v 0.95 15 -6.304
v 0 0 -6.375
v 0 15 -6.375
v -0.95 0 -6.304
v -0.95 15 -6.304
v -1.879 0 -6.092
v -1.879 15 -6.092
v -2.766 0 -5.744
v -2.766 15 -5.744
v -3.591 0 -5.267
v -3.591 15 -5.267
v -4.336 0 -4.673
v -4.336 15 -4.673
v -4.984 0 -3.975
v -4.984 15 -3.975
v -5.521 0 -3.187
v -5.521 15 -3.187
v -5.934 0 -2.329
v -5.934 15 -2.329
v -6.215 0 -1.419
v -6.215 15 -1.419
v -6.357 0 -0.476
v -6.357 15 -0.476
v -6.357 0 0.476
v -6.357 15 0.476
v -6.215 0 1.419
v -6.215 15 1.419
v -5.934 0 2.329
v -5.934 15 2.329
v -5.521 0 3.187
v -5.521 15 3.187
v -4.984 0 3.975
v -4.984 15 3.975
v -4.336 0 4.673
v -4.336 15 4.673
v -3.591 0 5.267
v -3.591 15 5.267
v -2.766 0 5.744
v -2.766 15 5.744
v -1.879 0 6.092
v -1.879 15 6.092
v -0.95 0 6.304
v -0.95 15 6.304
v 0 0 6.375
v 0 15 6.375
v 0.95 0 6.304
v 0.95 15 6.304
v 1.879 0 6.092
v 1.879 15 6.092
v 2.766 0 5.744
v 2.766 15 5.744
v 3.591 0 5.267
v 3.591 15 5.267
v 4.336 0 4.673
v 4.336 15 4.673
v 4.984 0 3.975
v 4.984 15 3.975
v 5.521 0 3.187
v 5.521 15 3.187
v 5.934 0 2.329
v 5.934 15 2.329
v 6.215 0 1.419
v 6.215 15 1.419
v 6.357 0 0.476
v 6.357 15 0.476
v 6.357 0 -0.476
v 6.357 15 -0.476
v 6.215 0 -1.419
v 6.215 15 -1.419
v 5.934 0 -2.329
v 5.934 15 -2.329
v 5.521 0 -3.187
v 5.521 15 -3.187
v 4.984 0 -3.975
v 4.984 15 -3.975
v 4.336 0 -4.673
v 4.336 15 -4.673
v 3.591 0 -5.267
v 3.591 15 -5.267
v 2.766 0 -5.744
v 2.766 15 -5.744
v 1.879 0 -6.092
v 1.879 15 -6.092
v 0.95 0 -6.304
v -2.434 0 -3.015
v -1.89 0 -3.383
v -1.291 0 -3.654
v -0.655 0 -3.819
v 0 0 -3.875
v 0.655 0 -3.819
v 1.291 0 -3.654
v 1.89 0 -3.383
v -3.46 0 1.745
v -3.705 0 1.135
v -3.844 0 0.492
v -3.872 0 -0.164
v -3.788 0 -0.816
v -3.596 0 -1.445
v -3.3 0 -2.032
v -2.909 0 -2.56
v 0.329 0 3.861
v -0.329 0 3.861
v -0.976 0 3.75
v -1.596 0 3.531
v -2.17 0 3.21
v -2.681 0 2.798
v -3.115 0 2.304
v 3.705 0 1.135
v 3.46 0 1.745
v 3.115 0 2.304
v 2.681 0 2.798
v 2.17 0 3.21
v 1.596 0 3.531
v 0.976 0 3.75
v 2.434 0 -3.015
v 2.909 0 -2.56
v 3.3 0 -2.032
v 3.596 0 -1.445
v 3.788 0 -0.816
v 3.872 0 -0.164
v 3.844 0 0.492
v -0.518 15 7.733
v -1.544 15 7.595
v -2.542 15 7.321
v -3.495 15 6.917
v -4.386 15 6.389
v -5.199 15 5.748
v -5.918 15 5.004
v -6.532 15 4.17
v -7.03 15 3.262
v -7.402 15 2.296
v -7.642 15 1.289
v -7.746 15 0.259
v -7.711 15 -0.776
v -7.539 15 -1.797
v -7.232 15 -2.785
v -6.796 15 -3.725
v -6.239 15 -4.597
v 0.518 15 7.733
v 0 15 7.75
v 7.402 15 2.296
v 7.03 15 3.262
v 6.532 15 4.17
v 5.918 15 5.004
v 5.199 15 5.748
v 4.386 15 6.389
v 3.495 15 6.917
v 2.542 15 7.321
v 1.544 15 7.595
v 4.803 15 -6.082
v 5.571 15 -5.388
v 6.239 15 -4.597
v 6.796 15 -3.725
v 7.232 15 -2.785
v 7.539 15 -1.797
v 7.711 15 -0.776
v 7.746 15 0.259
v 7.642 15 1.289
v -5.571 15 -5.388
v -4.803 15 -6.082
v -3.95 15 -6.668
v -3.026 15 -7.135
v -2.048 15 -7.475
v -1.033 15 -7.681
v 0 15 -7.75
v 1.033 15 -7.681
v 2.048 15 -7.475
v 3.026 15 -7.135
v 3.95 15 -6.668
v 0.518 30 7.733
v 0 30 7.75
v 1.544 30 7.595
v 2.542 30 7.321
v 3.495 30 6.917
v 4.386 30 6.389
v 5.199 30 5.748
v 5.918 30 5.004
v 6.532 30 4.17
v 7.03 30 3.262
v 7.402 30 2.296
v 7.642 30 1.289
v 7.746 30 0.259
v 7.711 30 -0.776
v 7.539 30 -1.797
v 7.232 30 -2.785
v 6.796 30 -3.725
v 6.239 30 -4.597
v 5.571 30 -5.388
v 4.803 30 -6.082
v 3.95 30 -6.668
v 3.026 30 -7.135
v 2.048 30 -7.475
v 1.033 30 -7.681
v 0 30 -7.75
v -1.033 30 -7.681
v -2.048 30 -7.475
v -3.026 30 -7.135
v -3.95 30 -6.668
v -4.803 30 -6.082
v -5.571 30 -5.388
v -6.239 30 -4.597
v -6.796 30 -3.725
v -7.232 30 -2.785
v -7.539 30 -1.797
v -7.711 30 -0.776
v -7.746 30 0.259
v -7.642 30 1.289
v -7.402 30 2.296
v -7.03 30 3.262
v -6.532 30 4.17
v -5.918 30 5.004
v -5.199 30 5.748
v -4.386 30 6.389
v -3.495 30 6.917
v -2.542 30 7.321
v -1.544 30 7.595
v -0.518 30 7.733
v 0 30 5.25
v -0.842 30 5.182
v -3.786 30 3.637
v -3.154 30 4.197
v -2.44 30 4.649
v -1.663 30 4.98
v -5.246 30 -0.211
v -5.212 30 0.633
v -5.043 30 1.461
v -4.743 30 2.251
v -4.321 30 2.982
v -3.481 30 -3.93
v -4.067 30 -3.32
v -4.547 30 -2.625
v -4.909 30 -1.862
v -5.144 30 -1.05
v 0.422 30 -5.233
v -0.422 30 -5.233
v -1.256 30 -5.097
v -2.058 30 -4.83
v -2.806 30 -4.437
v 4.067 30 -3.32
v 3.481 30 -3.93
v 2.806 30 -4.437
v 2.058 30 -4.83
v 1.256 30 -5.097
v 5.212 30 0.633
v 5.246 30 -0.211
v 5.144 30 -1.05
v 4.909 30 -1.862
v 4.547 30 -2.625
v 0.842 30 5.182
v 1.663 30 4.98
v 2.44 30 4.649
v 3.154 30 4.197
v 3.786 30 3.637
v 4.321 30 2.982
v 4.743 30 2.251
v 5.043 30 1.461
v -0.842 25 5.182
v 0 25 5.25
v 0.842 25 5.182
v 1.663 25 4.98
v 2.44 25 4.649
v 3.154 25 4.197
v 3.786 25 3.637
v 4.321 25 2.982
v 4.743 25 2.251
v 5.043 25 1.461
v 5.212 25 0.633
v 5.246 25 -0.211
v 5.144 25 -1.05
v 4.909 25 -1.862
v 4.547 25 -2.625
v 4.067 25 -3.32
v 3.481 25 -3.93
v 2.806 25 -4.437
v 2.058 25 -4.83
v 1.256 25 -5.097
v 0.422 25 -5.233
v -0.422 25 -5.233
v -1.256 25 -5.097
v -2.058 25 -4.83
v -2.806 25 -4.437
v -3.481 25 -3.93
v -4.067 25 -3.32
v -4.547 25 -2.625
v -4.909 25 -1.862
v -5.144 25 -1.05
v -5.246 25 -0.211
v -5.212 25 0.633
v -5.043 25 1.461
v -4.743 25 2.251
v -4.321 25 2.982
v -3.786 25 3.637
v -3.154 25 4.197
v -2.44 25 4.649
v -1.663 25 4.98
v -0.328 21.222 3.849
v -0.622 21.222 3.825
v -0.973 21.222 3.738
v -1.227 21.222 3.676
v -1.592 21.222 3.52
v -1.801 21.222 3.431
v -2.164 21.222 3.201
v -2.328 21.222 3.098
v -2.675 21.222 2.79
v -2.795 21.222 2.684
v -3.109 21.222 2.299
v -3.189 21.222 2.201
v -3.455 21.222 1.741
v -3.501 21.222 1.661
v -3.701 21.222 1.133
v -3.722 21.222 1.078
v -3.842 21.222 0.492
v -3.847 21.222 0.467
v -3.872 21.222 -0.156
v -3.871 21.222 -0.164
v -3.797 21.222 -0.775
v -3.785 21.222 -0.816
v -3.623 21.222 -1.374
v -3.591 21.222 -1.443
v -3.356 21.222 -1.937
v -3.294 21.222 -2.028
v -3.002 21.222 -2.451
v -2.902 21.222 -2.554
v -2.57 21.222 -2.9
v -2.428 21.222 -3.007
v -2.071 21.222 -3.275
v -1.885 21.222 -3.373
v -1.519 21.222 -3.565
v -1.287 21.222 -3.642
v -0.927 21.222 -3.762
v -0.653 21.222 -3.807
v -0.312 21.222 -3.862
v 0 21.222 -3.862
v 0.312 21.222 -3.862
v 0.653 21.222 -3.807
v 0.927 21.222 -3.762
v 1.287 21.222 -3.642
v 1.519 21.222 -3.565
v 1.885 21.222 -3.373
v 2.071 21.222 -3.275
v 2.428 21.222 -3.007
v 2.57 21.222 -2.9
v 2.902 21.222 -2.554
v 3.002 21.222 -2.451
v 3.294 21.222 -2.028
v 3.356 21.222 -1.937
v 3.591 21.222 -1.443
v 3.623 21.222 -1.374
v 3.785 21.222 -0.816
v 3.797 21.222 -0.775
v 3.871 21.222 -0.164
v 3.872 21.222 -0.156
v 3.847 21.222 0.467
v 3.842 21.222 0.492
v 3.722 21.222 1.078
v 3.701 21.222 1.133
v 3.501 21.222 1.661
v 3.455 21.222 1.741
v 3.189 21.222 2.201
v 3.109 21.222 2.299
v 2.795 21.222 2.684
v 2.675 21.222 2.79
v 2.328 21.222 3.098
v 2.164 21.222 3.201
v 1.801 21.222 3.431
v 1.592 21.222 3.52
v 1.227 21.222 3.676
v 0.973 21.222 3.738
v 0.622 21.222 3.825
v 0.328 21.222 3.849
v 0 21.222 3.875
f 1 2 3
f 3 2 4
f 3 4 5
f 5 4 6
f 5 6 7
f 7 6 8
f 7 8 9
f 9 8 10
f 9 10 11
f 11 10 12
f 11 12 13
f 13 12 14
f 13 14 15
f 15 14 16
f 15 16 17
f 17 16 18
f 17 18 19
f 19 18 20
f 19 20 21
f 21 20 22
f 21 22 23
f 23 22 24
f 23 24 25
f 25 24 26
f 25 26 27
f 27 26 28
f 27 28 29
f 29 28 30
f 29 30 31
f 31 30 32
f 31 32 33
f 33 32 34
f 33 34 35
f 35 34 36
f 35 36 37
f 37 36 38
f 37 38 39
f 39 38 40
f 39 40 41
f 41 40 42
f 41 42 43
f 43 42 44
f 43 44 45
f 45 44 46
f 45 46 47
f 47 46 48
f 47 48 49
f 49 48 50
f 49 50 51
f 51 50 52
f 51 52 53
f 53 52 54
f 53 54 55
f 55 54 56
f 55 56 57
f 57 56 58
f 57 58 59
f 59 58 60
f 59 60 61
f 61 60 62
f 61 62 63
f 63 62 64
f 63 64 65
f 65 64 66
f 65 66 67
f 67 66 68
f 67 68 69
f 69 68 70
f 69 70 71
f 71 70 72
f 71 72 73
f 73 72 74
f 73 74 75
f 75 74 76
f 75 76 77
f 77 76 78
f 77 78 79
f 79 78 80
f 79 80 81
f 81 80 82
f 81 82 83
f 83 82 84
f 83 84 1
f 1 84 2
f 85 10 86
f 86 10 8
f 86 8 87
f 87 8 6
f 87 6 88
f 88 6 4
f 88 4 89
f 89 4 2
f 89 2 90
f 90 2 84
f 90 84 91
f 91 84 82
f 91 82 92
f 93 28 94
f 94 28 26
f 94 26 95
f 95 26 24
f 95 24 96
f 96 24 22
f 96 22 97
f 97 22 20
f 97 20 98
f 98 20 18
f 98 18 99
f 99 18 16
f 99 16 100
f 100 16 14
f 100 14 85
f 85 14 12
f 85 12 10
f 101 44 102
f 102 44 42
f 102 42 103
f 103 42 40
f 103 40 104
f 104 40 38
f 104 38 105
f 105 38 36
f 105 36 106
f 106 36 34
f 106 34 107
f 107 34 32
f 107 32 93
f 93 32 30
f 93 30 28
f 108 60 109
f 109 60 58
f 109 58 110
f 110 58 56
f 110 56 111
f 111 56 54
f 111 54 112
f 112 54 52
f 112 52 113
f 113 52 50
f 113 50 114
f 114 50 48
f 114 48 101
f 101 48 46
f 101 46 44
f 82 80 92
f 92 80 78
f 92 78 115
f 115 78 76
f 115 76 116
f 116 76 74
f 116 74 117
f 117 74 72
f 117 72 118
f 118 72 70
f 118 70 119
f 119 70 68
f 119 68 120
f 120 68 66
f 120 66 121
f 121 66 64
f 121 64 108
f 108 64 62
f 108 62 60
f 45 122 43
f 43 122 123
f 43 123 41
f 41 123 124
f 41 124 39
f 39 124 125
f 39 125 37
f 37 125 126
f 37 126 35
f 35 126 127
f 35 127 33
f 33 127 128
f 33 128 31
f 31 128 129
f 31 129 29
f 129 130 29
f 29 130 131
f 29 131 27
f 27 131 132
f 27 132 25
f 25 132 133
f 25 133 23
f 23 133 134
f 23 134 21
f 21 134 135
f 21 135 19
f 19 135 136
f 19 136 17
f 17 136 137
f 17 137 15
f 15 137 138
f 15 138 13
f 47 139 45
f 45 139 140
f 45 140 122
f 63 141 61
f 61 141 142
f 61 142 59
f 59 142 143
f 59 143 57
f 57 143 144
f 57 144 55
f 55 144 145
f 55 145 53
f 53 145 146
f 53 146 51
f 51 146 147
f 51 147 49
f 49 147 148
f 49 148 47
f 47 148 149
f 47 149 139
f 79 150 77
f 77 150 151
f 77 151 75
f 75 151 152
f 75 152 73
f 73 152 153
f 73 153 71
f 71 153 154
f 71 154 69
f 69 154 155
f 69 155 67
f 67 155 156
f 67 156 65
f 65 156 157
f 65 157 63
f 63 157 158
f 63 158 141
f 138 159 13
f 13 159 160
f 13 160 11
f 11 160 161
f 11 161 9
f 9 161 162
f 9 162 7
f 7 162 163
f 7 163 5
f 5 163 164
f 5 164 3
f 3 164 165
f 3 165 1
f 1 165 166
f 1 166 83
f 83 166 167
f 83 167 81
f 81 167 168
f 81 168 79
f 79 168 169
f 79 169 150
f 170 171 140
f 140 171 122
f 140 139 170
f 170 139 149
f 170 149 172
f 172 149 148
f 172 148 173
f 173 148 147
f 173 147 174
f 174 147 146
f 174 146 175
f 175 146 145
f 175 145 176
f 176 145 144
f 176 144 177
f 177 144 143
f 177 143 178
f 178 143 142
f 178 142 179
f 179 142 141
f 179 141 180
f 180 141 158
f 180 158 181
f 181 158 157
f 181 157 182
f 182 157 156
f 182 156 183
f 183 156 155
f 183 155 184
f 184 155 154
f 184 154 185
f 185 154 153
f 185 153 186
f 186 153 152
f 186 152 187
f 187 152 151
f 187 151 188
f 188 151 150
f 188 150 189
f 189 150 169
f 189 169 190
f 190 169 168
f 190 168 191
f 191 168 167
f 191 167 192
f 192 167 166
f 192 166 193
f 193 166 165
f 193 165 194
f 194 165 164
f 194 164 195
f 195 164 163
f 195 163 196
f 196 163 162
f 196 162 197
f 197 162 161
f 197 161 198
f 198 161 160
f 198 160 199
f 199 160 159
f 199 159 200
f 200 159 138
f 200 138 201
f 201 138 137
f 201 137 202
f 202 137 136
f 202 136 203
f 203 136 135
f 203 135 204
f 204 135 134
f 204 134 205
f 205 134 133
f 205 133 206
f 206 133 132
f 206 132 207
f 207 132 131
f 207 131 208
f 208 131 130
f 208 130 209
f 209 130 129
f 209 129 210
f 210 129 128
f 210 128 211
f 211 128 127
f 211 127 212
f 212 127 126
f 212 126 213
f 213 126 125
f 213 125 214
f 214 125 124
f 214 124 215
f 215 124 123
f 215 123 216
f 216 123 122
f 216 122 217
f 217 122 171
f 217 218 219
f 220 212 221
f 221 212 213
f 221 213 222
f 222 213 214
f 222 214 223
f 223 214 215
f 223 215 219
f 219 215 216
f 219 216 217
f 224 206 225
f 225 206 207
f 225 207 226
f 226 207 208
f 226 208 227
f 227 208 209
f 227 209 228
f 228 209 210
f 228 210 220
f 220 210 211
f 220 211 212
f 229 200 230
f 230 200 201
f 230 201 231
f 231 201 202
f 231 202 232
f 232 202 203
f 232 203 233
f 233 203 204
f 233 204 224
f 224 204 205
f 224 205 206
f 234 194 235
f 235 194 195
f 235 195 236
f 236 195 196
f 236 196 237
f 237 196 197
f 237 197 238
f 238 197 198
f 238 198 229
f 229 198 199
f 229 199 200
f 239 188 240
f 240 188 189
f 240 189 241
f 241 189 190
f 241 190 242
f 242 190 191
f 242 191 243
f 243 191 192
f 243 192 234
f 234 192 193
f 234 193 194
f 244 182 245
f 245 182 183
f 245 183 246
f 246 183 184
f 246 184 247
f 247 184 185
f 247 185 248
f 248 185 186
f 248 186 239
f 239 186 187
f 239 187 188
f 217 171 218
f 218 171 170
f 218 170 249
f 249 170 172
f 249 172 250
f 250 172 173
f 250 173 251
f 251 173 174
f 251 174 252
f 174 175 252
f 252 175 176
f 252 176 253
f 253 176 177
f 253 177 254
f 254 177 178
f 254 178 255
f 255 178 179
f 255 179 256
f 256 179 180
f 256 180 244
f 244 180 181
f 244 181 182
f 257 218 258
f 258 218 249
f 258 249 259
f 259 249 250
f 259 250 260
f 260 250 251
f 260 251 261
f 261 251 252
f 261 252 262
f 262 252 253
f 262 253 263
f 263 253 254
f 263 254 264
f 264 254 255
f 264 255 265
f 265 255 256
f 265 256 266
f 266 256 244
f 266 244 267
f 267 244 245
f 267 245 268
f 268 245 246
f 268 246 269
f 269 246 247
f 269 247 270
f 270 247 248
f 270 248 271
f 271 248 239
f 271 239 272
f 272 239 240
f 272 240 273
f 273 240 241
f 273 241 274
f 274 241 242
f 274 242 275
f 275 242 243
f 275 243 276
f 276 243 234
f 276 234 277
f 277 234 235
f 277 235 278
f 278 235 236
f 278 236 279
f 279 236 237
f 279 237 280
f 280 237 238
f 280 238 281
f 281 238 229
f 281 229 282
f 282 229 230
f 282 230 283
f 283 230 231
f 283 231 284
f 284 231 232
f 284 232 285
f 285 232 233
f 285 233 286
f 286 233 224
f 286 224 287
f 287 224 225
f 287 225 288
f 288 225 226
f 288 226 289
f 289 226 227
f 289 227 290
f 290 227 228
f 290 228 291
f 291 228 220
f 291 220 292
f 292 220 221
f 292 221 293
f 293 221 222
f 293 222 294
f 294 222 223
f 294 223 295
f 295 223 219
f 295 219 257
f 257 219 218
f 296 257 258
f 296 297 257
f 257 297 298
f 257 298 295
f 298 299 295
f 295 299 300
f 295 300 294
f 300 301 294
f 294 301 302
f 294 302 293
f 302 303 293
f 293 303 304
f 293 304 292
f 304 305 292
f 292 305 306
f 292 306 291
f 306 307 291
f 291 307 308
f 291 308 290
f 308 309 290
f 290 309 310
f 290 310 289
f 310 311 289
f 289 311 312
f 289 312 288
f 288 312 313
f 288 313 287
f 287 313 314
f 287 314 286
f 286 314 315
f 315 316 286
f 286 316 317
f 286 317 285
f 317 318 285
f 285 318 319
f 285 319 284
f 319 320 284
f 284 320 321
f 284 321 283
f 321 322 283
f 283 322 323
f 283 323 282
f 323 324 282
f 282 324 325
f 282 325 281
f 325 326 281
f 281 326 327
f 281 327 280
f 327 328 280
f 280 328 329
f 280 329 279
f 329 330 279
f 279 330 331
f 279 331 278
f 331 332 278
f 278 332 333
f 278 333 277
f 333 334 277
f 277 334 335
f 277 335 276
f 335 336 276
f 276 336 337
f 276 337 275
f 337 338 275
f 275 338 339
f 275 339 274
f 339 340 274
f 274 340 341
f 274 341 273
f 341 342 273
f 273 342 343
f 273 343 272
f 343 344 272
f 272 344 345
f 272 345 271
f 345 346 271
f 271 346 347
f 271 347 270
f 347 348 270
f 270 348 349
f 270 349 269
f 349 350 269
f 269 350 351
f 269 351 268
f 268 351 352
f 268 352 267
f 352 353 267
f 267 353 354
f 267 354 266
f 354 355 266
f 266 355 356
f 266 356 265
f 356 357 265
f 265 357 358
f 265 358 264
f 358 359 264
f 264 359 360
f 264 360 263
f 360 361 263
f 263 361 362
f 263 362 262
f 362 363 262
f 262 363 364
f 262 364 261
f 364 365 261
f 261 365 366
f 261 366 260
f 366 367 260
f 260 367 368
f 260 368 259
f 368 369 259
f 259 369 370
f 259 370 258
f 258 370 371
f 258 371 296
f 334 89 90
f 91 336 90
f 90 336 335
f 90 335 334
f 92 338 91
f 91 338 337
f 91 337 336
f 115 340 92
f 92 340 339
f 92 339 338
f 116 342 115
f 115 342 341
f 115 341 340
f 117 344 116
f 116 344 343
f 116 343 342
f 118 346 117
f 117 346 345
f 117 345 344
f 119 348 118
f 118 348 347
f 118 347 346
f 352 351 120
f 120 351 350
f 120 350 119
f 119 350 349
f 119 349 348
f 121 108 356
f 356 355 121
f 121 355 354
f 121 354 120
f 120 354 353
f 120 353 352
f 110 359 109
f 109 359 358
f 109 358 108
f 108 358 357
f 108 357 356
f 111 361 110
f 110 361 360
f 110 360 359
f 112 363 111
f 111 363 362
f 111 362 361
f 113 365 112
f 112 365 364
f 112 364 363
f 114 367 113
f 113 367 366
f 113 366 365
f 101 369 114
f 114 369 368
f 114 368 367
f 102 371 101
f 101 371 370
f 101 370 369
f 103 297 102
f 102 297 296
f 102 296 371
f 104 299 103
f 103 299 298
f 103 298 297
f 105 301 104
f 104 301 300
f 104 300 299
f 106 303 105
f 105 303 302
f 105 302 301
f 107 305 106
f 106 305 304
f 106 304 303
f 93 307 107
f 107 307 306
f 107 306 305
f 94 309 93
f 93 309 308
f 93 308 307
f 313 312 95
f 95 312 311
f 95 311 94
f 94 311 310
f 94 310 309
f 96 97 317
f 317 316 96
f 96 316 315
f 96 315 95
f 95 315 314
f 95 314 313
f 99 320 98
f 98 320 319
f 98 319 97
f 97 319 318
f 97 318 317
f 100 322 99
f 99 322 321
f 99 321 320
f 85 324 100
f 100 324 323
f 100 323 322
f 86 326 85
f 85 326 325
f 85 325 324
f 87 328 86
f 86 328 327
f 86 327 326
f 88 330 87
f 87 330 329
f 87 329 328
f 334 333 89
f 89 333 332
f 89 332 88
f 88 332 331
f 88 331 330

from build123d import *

# Parameters (mm, degrees)
SKETCH1_R           = 6.375
BOSS_EXTRUDE1_DEPTH = 15
SKETCH9_R           = 7.75
BOSS_EXTRUDE5_DEPTH = 15
SKETCH10_R          = 5.25
CUT_EXTRUDE4_DEPTH  = 5
SKETCH11_R          = 5.25
CUT_EXTRUDE5_DEPTH  = 10
CUT_EXTRUDE5_DRAFT  = -20
SKETCH12_R          = 3.875
CUT_EXTRUDE6_DEPTH  = 30


with BuildPart() as part:
    # Sketch1 → Boss-Extrude1 (new body)
    with BuildSketch(Plane(origin=(0, 0, 0), x_dir=(1, 0, 0), z_dir=(0, 1, 0))):
        with Locations(Location((0, 0, 0), (0, 0, 270))):
            Circle(SKETCH1_R)
    extrude(amount=BOSS_EXTRUDE1_DEPTH)

    # Sketch9 → Boss-Extrude5 (add)
    with BuildSketch(Plane(origin=(0, 15, 0), x_dir=(1, 0, 0), z_dir=(0, 1, 0))):
        with Locations(Location((0, 0, 0), (0, 0, 270))):
            Circle(SKETCH9_R)
    extrude(amount=BOSS_EXTRUDE5_DEPTH)

    # Sketch10 → Cut-Extrude4 (cut)
    with BuildSketch(Plane(origin=(0, 30, 0), x_dir=(1, 0, 0), z_dir=(0, 1, 0))):
        with Locations(Location((0, 0, 0), (0, 0, 270))):
            Circle(SKETCH10_R)
    extrude(amount=-CUT_EXTRUDE4_DEPTH, mode=Mode.SUBTRACT)


with BuildPart() as cut_extrude5_tool:
    # Sketch11 → Cut-Extrude5 (with draft: the straight prism first)
    with BuildSketch(Plane(origin=(0, 25, 0), x_dir=(1, 0, 0), z_dir=(0, 1, 0))):
        with Locations(Location((0, 0, 0), (0, 0, 270))):
            Circle(SKETCH11_R)
    extrude(amount=-CUT_EXTRUDE5_DEPTH)
    # Cut-Extrude5: the draft: its side faces are tilted about the plane it starts from
    cut_extrude5_sides = [cut_extrude5_tool.faces().sort_by_distance(p)[0] for p in [
        (0, 20, -5.25),
    ]]
    draft(cut_extrude5_sides, Plane(origin=(0, 25, 0), x_dir=(1, 0, 0), z_dir=(0, 1, 0)), CUT_EXTRUDE5_DRAFT)


with BuildPart() as part_1:
    add(part.part)

    # Cut-Extrude5: cut by cut_extrude5_tool
    add(cut_extrude5_tool.part, mode=Mode.SUBTRACT)

    # Sketch12 → Cut-Extrude6 (cut)
    with BuildSketch(Plane.XZ):
        with Locations(Location((0, 0, 0), (0, 0, 270))):
            Circle(SKETCH12_R)
    extrude(amount=-CUT_EXTRUDE6_DEPTH, mode=Mode.SUBTRACT)


solid = part_1.part
